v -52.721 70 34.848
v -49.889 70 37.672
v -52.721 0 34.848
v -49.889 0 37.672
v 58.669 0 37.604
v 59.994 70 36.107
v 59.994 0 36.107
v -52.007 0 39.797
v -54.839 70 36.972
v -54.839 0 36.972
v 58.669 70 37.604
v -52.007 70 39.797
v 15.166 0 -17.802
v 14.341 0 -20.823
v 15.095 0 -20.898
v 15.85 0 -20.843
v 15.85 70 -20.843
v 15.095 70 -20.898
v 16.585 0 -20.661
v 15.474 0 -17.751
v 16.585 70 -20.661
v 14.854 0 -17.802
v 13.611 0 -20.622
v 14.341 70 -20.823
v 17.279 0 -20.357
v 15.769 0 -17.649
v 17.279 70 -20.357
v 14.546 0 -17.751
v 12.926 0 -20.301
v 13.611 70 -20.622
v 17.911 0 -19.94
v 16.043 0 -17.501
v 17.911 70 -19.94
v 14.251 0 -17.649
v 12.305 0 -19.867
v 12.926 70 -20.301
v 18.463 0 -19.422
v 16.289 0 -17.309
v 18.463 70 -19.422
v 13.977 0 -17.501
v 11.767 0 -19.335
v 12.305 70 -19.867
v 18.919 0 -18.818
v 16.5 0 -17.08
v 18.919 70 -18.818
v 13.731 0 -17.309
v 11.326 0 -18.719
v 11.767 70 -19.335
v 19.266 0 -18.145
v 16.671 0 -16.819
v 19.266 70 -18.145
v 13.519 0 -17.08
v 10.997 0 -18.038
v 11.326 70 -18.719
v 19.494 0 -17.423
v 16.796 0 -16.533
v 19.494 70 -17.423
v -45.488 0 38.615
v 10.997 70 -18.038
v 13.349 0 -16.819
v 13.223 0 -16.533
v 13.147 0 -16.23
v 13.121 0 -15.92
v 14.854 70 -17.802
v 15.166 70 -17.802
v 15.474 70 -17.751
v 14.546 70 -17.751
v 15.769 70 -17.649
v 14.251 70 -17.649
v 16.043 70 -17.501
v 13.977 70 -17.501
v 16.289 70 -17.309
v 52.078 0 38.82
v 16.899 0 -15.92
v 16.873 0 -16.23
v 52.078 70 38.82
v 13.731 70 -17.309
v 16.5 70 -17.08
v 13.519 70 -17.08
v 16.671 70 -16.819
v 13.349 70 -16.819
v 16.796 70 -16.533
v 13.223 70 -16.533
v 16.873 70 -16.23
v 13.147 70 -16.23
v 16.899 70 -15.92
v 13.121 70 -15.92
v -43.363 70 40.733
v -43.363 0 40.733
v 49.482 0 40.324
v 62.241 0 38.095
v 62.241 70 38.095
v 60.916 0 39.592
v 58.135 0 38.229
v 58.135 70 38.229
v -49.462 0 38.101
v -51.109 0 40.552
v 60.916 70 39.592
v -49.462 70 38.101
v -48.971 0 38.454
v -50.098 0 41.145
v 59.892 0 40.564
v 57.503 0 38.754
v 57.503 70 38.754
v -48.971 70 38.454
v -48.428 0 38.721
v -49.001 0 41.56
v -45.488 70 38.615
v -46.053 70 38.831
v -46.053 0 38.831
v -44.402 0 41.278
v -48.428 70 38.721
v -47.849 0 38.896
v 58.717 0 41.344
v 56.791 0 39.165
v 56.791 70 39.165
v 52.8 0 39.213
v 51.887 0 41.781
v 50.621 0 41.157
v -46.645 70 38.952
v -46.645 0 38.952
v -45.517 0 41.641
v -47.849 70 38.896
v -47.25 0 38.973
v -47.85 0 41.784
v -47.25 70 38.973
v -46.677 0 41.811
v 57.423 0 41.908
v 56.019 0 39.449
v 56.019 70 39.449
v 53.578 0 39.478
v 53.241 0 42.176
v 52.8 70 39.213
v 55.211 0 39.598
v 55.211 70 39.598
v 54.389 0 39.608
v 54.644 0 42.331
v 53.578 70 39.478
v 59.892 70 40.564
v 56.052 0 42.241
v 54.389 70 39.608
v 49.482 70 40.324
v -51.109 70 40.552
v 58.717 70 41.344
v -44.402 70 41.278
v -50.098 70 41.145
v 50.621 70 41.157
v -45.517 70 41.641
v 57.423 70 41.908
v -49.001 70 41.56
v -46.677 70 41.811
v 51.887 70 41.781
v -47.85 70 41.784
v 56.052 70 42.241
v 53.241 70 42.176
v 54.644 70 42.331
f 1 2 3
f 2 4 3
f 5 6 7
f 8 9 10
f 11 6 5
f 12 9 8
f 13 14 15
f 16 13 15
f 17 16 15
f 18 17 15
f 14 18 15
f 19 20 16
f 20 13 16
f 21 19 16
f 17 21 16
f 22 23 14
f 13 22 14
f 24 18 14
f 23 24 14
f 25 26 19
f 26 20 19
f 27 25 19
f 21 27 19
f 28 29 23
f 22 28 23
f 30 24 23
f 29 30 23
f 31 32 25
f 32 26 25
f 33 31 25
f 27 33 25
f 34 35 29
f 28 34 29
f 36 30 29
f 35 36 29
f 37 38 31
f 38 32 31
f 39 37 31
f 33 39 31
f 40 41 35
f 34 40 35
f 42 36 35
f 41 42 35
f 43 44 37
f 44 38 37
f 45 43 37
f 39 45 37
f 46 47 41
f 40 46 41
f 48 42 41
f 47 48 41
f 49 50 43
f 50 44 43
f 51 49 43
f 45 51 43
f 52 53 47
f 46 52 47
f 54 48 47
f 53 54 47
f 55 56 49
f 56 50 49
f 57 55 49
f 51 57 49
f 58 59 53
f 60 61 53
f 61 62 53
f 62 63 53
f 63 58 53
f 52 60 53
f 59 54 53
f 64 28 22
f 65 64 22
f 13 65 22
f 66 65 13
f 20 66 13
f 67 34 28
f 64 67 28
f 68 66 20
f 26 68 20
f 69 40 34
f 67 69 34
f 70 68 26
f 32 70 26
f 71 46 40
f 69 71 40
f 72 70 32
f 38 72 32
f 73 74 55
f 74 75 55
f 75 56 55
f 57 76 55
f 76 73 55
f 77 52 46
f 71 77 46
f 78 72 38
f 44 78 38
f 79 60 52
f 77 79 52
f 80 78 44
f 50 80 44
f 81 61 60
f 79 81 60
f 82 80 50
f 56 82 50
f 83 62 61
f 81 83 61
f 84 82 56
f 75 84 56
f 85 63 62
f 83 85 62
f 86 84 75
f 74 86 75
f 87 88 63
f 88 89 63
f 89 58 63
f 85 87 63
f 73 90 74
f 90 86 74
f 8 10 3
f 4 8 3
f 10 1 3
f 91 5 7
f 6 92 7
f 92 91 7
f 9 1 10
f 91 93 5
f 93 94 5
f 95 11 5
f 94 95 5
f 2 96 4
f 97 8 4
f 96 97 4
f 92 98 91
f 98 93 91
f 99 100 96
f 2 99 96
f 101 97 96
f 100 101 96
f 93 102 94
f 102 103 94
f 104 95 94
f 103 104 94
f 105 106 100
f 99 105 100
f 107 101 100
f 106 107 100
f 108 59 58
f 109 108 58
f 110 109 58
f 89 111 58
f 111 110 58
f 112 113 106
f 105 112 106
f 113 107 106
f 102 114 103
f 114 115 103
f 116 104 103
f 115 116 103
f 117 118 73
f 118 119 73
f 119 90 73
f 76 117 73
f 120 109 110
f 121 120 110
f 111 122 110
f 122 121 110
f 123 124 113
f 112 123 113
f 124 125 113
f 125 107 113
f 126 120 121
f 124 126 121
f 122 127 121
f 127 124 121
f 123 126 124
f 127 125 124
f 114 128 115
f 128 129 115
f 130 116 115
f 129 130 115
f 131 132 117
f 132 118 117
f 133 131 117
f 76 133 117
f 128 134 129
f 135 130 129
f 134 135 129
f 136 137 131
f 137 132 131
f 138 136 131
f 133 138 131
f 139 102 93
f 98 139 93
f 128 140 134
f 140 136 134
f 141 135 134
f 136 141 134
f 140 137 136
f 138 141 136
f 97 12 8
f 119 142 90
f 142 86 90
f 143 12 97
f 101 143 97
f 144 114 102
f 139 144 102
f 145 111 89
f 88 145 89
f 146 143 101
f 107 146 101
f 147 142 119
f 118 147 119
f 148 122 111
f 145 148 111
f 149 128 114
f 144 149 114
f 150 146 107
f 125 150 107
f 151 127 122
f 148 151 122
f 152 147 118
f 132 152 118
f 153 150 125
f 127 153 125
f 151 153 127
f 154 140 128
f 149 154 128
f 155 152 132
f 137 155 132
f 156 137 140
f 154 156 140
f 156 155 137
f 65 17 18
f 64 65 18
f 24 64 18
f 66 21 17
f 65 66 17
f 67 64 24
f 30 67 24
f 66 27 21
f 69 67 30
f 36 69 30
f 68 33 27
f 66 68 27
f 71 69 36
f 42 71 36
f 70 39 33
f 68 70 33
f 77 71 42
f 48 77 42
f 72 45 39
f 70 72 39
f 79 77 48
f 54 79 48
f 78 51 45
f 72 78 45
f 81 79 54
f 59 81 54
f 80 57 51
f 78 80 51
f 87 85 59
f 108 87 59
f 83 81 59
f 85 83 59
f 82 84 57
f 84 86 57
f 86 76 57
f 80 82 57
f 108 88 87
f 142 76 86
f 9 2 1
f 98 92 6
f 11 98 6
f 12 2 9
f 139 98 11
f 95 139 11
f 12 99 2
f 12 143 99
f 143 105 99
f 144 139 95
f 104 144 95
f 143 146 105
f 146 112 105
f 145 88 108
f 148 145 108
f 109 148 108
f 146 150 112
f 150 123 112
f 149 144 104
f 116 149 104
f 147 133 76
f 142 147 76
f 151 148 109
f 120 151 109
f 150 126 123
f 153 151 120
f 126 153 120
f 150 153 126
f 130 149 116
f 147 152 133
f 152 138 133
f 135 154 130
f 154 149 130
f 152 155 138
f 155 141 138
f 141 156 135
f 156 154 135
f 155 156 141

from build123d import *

# Parameters (mm, degrees)
EXTRUDE_1_DEPTH = 70


with BuildPart() as part:
    # 草圖1 → 填料-伸長1 (new body)
    with BuildSketch(Plane(origin=(0, 0, 0), x_dir=(1, 0, 0), z_dir=(0, 1, 0))):
        with BuildLine():
            Line((10.996587269, 18.037741282), (-45.487838574, -38.61479297))
            ThreePointArc((-45.487838574, -38.61479297), (-47.84934361, -38.895811815), (-49.888582931, -37.672218494))
            Line((-49.888582931, -37.672218494), (-52.721209644, -34.847997201))
            Line((-52.721209644, -34.847997201), (-54.839375613, -36.972467236))
            Line((-54.839375613, -36.972467236), (-52.0067489, -39.796688528))
            ThreePointArc((-52.0067489, -39.796688528), (-47.849605549, -41.783872953), (-43.363368539, -40.732958939))
            Line((-43.363368539, -40.732958939), (13.121057303, 15.919575313))
            ThreePointArc((13.121057303, 15.919575313), (15.009846467, 17.808364477), (16.898635631, 15.919575313))
            Line((16.898635631, 15.919575313), (49.482242531, -40.323722611))
            ThreePointArc((49.482242531, -40.323722611), (55.349857539, -42.316518092), (60.91576552, -39.592402078))
            Line((60.91576552, -39.592402078), (62.241081291, -38.094557591))
            Line((62.241081291, -38.094557591), (59.994314562, -36.106583934))
            Line((59.994314562, -36.106583934), (58.66899879, -37.60442842))
            ThreePointArc((58.66899879, -37.60442842), (55.618475046, -39.540333545), (52.078087051, -38.819863831))
            Line((52.078087051, -38.819863831), (19.494480151, 17.423434093))
            ThreePointArc((19.494480151, 17.423434093), (15.47366289, 20.886366054), (10.996587269, 18.037741282))
        make_face()
    extrude(amount=EXTRUDE_1_DEPTH)


solid = part.part
